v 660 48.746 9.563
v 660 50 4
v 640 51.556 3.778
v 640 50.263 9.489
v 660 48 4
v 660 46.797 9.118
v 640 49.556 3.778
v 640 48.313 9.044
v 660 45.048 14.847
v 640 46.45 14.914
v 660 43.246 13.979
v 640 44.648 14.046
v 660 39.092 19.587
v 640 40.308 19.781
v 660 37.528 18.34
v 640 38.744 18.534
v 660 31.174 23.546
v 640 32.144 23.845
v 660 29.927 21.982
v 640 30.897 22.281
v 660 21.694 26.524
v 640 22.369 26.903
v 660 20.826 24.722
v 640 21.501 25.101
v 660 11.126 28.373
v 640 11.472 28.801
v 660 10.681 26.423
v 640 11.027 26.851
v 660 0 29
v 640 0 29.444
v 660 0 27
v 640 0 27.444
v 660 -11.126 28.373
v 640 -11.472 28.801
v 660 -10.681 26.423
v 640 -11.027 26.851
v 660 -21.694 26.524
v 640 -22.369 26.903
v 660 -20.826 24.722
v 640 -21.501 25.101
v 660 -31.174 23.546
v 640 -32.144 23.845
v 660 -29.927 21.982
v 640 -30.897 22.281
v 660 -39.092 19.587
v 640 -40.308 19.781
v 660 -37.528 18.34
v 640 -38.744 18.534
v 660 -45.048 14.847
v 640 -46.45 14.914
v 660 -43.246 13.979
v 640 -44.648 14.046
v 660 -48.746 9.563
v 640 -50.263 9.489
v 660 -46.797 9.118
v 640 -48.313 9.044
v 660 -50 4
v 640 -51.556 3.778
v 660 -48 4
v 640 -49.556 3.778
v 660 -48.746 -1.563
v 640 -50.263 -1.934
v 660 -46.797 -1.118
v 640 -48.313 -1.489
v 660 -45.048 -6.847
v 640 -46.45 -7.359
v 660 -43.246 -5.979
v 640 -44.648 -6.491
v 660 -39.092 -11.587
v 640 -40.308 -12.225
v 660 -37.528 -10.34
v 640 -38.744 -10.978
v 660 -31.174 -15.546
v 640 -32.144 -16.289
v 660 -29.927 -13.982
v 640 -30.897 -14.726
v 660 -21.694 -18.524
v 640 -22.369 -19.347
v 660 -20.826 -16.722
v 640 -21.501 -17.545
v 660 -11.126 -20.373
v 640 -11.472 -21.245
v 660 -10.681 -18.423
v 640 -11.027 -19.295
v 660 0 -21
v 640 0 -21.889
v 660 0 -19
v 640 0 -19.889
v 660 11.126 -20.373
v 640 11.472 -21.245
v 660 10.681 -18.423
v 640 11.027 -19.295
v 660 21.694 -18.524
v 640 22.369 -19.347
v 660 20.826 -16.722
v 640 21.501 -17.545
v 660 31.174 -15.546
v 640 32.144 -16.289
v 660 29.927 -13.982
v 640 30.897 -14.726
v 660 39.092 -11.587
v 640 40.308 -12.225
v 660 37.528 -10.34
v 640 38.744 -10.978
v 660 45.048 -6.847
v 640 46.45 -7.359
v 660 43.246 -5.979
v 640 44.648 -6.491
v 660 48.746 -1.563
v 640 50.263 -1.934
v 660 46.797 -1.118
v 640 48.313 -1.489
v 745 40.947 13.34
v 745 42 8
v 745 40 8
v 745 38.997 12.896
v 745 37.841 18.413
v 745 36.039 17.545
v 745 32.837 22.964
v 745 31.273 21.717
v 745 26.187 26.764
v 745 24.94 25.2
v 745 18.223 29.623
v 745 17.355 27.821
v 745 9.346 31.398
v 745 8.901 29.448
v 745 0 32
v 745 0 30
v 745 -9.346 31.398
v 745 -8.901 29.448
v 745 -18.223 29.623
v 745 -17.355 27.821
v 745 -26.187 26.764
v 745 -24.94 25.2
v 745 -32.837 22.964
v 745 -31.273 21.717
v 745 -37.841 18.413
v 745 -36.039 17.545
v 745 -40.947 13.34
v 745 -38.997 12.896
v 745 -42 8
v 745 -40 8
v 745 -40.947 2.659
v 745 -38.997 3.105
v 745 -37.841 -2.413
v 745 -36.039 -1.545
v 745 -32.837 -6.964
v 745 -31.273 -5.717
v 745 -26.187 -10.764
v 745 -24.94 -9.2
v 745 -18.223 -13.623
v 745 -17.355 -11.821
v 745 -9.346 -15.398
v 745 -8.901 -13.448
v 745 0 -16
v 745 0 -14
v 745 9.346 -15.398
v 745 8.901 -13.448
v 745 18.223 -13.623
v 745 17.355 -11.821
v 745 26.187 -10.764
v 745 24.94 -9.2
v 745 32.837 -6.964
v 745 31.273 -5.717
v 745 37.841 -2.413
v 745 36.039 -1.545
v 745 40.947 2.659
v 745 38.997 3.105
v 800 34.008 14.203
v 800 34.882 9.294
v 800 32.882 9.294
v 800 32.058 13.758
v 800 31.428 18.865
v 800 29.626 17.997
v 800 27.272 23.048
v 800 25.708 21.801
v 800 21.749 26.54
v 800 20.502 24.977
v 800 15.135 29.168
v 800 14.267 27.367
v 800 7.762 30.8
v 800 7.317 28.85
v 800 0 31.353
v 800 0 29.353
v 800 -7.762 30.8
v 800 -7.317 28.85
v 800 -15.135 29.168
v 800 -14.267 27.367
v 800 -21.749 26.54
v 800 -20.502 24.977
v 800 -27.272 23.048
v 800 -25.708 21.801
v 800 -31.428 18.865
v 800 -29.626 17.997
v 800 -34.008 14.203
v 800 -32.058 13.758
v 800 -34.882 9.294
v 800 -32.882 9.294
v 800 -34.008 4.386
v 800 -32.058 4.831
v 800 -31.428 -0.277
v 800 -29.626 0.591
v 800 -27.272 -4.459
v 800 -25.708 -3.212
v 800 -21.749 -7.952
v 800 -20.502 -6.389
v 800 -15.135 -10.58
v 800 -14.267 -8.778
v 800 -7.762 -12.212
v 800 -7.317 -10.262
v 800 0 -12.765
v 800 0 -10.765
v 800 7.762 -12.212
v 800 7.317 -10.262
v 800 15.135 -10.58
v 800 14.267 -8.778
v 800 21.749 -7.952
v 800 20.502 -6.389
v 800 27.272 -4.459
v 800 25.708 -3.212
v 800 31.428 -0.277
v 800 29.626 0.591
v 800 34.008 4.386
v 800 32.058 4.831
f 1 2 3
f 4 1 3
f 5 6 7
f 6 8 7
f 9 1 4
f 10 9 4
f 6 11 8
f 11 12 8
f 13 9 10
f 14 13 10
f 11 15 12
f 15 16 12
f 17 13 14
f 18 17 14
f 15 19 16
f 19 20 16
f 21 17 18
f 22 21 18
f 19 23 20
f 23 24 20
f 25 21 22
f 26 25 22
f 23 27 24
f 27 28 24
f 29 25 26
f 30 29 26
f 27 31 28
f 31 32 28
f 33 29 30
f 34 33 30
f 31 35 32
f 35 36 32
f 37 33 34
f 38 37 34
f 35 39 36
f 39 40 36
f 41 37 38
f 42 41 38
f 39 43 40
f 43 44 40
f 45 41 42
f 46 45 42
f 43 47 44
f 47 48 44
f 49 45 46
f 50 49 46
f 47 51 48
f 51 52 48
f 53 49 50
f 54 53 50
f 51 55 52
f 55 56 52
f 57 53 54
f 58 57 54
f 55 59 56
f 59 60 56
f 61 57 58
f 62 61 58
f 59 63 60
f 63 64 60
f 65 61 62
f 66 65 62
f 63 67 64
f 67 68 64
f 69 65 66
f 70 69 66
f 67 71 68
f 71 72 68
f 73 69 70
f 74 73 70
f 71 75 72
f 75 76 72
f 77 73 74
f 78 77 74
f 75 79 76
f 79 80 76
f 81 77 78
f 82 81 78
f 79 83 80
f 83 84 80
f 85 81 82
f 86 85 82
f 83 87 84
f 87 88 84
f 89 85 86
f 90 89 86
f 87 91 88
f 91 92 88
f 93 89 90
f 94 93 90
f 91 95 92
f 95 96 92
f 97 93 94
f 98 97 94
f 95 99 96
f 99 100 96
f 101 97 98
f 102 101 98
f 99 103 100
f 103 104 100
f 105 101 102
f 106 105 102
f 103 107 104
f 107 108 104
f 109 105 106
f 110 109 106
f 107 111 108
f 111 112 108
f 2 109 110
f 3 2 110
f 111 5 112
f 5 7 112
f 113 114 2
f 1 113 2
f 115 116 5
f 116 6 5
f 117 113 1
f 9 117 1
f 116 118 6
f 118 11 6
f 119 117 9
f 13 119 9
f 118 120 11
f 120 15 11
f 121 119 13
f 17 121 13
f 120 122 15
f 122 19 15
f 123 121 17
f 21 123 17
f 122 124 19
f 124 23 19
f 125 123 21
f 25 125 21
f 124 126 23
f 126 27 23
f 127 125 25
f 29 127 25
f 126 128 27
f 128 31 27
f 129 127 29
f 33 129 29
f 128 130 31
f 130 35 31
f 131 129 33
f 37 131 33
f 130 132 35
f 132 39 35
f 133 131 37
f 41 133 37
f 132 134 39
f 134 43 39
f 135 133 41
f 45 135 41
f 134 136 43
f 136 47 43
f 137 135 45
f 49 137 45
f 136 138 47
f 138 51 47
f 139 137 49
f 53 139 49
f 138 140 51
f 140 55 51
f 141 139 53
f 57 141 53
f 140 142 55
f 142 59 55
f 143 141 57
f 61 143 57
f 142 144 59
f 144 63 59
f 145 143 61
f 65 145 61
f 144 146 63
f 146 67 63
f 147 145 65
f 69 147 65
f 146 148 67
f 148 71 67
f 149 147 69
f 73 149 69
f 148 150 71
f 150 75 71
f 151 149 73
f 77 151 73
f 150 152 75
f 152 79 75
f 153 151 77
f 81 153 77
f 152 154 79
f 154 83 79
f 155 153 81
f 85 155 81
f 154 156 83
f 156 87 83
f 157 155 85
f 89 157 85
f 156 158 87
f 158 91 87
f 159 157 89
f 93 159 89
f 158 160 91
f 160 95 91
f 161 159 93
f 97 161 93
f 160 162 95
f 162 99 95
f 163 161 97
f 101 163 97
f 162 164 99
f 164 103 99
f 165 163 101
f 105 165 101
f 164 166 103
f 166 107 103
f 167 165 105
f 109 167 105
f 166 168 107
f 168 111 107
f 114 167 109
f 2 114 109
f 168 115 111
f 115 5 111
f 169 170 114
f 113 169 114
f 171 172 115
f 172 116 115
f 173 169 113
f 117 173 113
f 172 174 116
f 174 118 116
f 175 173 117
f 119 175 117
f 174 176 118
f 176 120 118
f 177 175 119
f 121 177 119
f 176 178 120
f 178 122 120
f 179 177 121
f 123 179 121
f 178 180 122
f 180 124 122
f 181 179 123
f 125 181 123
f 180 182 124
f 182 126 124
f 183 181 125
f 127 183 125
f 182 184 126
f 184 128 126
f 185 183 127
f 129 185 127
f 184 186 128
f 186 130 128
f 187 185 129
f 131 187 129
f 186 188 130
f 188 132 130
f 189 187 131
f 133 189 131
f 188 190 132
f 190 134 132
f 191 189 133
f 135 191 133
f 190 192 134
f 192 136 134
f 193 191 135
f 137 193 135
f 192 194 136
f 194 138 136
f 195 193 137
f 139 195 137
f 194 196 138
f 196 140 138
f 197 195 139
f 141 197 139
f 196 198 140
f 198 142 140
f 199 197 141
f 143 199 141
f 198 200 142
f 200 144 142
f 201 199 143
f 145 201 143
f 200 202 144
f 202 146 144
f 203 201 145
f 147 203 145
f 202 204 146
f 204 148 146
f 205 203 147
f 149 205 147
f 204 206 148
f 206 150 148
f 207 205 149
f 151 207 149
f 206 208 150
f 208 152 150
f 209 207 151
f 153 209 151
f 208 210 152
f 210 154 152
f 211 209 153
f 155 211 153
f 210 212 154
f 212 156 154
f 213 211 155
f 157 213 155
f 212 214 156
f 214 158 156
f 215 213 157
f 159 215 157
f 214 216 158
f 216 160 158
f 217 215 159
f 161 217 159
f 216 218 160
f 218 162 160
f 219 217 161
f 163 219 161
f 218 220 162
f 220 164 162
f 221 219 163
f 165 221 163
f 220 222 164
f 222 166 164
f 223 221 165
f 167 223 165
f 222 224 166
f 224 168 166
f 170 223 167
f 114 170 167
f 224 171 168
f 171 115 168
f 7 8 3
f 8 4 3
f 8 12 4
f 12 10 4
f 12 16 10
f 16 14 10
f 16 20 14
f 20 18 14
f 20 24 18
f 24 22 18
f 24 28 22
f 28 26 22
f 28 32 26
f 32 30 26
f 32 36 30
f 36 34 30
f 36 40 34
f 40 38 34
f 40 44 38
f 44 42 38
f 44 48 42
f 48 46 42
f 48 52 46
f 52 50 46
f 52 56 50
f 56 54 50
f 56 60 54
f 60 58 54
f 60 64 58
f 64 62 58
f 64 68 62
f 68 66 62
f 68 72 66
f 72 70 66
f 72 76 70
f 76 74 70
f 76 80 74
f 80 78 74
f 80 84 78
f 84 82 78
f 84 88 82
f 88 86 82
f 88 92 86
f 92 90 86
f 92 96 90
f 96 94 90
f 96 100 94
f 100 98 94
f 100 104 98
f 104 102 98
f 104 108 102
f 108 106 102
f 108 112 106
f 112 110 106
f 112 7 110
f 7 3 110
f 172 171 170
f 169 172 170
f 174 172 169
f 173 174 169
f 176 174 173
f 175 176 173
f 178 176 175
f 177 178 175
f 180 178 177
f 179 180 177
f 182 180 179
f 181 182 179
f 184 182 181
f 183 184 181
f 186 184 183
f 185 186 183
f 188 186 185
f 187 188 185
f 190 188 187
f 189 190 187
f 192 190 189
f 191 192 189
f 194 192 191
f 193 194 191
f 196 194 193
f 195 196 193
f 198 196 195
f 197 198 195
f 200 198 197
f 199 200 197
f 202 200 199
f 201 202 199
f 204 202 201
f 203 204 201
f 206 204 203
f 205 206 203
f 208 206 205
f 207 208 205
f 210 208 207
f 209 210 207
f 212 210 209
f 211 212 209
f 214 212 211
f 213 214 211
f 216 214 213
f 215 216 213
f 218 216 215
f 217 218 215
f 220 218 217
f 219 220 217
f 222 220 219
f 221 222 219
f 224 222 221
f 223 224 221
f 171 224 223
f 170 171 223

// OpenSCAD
polyhedron(points=[[640.0, 51.555556, 3.777778], [640.0, 50.26295, 9.489148], [640.0, 46.449951, 14.914127], [640.0, 40.307756, 19.780683], [640.0, 32.144363, 23.844786], [640.0, 22.369117, 26.902645], [640.0, 11.47219, 28.800928], [640.0, 0.0, 29.444444], [640.0, -11.47219, 28.800928], [640.0, -22.369117, 26.902645], [640.0, -32.144363, 23.844786], [640.0, -40.307756, 19.780683], [640.0, -46.449951, 14.914127], [640.0, -50.26295, 9.489148], [640.0, -51.555556, 3.777778], [640.0, -50.26295, -1.933593], [640.0, -46.449951, -7.358572], [640.0, -40.307756, -12.225127], [640.0, -32.144363, -16.28923], [640.0, -22.369117, -19.34709], [640.0, -11.47219, -21.245372], [640.0, -0.0, -21.888889], [640.0, 11.47219, -21.245372], [640.0, 22.369117, -19.34709], [640.0, 32.144363, -16.28923], [640.0, 40.307756, -12.225127], [640.0, 46.449951, -7.358572], [640.0, 50.26295, -1.933593], [640.0, 49.555556, 3.777778], [640.0, 48.313094, 9.044107], [640.0, 44.648013, 14.04636], [640.0, 38.744093, 18.533703], [640.0, 30.897384, 22.281123], [640.0, 21.50135, 25.100708], [640.0, 11.027149, 26.851072], [640.0, 0.0, 27.444444], [640.0, -11.027149, 26.851072], [640.0, -21.50135, 25.100708], [640.0, -30.897384, 22.281123], [640.0, -38.744093, 18.533703], [640.0, -44.648013, 14.04636], [640.0, -48.313094, 9.044107], [640.0, -49.555556, 3.777778], [640.0, -48.313094, -1.488551], [640.0, -44.648013, -6.490804], [640.0, -38.744093, -10.978148], [640.0, -30.897384, -14.725567], [640.0, -21.50135, -17.545152], [640.0, -11.027149, -19.295516], [640.0, -0.0, -19.888889], [640.0, 11.027149, -19.295516], [640.0, 21.50135, -17.545152], [640.0, 30.897384, -14.725567], [640.0, 38.744093, -10.978148], [640.0, 44.648013, -6.490804], [640.0, 48.313094, -1.488551], [660.0, 50.0, 4.0], [660.0, 48.746396, 9.563023], [660.0, 45.048443, 14.847093], [660.0, 39.091574, 19.587245], [660.0, 31.17449, 23.545787], [660.0, 21.694187, 26.524222], [660.0, 11.126047, 28.373198], [660.0, 0.0, 29.0], [660.0, -11.126047, 28.373198], [660.0, -21.694187, 26.524222], [660.0, -31.17449, 23.545787], [660.0, -39.091574, 19.587245], [660.0, -45.048443, 14.847093], [660.0, -48.746396, 9.563023], [660.0, -50.0, 4.0], [660.0, -48.746396, -1.563023], [660.0, -45.048443, -6.847093], [660.0, -39.091574, -11.587245], [660.0, -31.17449, -15.545787], [660.0, -21.694187, -18.524222], [660.0, -11.126047, -20.373198], [660.0, -0.0, -21.0], [660.0, 11.126047, -20.373198], [660.0, 21.694187, -18.524222], [660.0, 31.17449, -15.545787], [660.0, 39.091574, -11.587245], [660.0, 45.048443, -6.847093], [660.0, 48.746396, -1.563023], [660.0, 48.0, 4.0], [660.0, 46.79654, 9.117981], [660.0, 43.246506, 13.979326], [660.0, 37.527911, 18.340265], [660.0, 29.92751, 21.982124], [660.0, 20.826419, 24.722284], [660.0, 10.681005, 26.423342], [660.0, 0.0, 27.0], [660.0, -10.681005, 26.423342], [660.0, -20.826419, 24.722284], [660.0, -29.92751, 21.982124], [660.0, -37.527911, 18.340265], [660.0, -43.246506, 13.979326], [660.0, -46.79654, 9.117981], [660.0, -48.0, 4.0], [660.0, -46.79654, -1.117981], [660.0, -43.246506, -5.979326], [660.0, -37.527911, -10.340265], [660.0, -29.92751, -13.982124], [660.0, -20.826419, -16.722284], [660.0, -10.681005, -18.423342], [660.0, -0.0, -19.0], [660.0, 10.681005, -18.423342], [660.0, 20.826419, -16.722284], [660.0, 29.92751, -13.982124], [660.0, 37.527911, -10.340265], [660.0, 43.246506, -5.979326], [660.0, 46.79654, -1.117981], [745.0, 42.0, 8.0], [745.0, 40.946972, 13.340502], [745.0, 37.840692, 18.41321], [745.0, 32.836922, 22.963755], [745.0, 26.186572, 26.763956], [745.0, 18.223117, 29.623253], [745.0, 9.345879, 31.39827], [745.0, 0.0, 32.0], [745.0, -9.345879, 31.39827], [745.0, -18.223117, 29.623253], [745.0, -26.186572, 26.763956], [745.0, -32.836922, 22.963755], [745.0, -37.840692, 18.41321], [745.0, -40.946972, 13.340502], [745.0, -42.0, 8.0], [745.0, -40.946972, 2.659498], [745.0, -37.840692, -2.41321], [745.0, -32.836922, -6.963755], [745.0, -26.186572, -10.763956], [745.0, -18.223117, -13.623253], [745.0, -9.345879, -15.39827], [745.0, -0.0, -16.0], [745.0, 9.345879, -15.39827], [745.0, 18.223117, -13.623253], [745.0, 26.186572, -10.763956], [745.0, 32.836922, -6.963755], [745.0, 37.840692, -2.41321], [745.0, 40.946972, 2.659498], [745.0, 40.0, 8.0], [745.0, 38.997116, 12.895461], [745.0, 36.038755, 17.545442], [745.0, 31.273259, 21.716776], [745.0, 24.939592, 25.200293], [745.0, 17.35535, 27.821315], [745.0, 8.900837, 29.448414], [745.0, 0.0, 30.0], [745.0, -8.900837, 29.448414], [745.0, -17.35535, 27.821315], [745.0, -24.939592, 25.200293], [745.0, -31.273259, 21.716776], [745.0, -36.038755, 17.545442], [745.0, -38.997116, 12.895461], [745.0, -40.0, 8.0], [745.0, -38.997116, 3.104539], [745.0, -36.038755, -1.545442], [745.0, -31.273259, -5.716776], [745.0, -24.939592, -9.200293], [745.0, -17.35535, -11.821315], [745.0, -8.900837, -13.448414], [745.0, -0.0, -14.0], [745.0, 8.900837, -13.448414], [745.0, 17.35535, -11.821315], [745.0, 24.939592, -9.200293], [745.0, 31.273259, -5.716776], [745.0, 36.038755, -1.545442], [745.0, 38.997116, 3.104539], [800.0, 34.882353, 9.294118], [800.0, 34.00778, 14.202668], [800.0, 31.427914, 18.865082], [800.0, 27.272122, 23.047569], [800.0, 21.748791, 26.5404], [800.0, 15.134886, 29.168431], [800.0, 7.762054, 30.79988], [800.0, 0.0, 31.352941], [800.0, -7.762054, 30.79988], [800.0, -15.134886, 29.168431], [800.0, -21.748791, 26.5404], [800.0, -27.272122, 23.047569], [800.0, -31.427914, 18.865082], [800.0, -34.00778, 14.202668], [800.0, -34.882353, 9.294118], [800.0, -34.00778, 4.385568], [800.0, -31.427914, -0.276847], [800.0, -27.272122, -4.459334], [800.0, -21.748791, -7.952165], [800.0, -15.134886, -10.580196], [800.0, -7.762054, -12.211645], [800.0, -0.0, -12.764706], [800.0, 7.762054, -12.211645], [800.0, 15.134886, -10.580196], [800.0, 21.748791, -7.952165], [800.0, 27.272122, -4.459334], [800.0, 31.427914, -0.276847], [800.0, 34.00778, 4.385568], [800.0, 32.882353, 9.294118], [800.0, 32.057924, 13.757626], [800.0, 29.625976, 17.997315], [800.0, 25.708459, 21.80059], [800.0, 20.501812, 24.976737], [800.0, 14.267118, 27.366493], [800.0, 7.317012, 28.850025], [800.0, 0.0, 29.352941], [800.0, -7.317012, 28.850025], [800.0, -14.267118, 27.366493], [800.0, -20.501812, 24.976737], [800.0, -25.708459, 21.80059], [800.0, -29.625976, 17.997315], [800.0, -32.057924, 13.757626], [800.0, -32.882353, 9.294118], [800.0, -32.057924, 4.83061], [800.0, -29.625976, 0.59092], [800.0, -25.708459, -3.212354], [800.0, -20.501812, -6.388502], [800.0, -14.267118, -8.778258], [800.0, -7.317012, -10.261789], [800.0, -0.0, -10.764706], [800.0, 7.317012, -10.261789], [800.0, 14.267118, -8.778258], [800.0, 20.501812, -6.388502], [800.0, 25.708459, -3.212354], [800.0, 29.625976, 0.59092], [800.0, 32.057924, 4.83061]], faces=[[0, 56, 57], [0, 57, 1], [28, 85, 84], [28, 29, 85], [1, 57, 58], [1, 58, 2], [29, 86, 85], [29, 30, 86], [2, 58, 59], [2, 59, 3], [30, 87, 86], [30, 31, 87], [3, 59, 60], [3, 60, 4], [31, 88, 87], [31, 32, 88], [4, 60, 61], [4, 61, 5], [32, 89, 88], [32, 33, 89], [5, 61, 62], [5, 62, 6], [33, 90, 89], [33, 34, 90], [6, 62, 63], [6, 63, 7], [34, 91, 90], [34, 35, 91], [7, 63, 64], [7, 64, 8], [35, 92, 91], [35, 36, 92], [8, 64, 65], [8, 65, 9], [36, 93, 92], [36, 37, 93], [9, 65, 66], [9, 66, 10], [37, 94, 93], [37, 38, 94], [10, 66, 67], [10, 67, 11], [38, 95, 94], [38, 39, 95], [11, 67, 68], [11, 68, 12], [39, 96, 95], [39, 40, 96], [12, 68, 69], [12, 69, 13], [40, 97, 96], [40, 41, 97], [13, 69, 70], [13, 70, 14], [41, 98, 97], [41, 42, 98], [14, 70, 71], [14, 71, 15], [42, 99, 98], [42, 43, 99], [15, 71, 72], [15, 72, 16], [43, 100, 99], [43, 44, 100], [16, 72, 73], [16, 73, 17], [44, 101, 100], [44, 45, 101], [17, 73, 74], [17, 74, 18], [45, 102, 101], [45, 46, 102], [18, 74, 75], [18, 75, 19], [46, 103, 102], [46, 47, 103], [19, 75, 76], [19, 76, 20], [47, 104, 103], [47, 48, 104], [20, 76, 77], [20, 77, 21], [48, 105, 104], [48, 49, 105], [21, 77, 78], [21, 78, 22], [49, 106, 105], [49, 50, 106], [22, 78, 79], [22, 79, 23], [50, 107, 106], [50, 51, 107], [23, 79, 80], [23, 80, 24], [51, 108, 107], [51, 52, 108], [24, 80, 81], [24, 81, 25], [52, 109, 108], [52, 53, 109], [25, 81, 82], [25, 82, 26], [53, 110, 109], [53, 54, 110], [26, 82, 83], [26, 83, 27], [54, 111, 110], [54, 55, 111], [27, 83, 56], [27, 56, 0], [55, 84, 111], [55, 28, 84], [56, 112, 113], [56, 113, 57], [84, 141, 140], [84, 85, 141], [57, 113, 114], [57, 114, 58], [85, 142, 141], [85, 86, 142], [58, 114, 115], [58, 115, 59], [86, 143, 142], [86, 87, 143], [59, 115, 116], [59, 116, 60], [87, 144, 143], [87, 88, 144], [60, 116, 117], [60, 117, 61], [88, 145, 144], [88, 89, 145], [61, 117, 118], [61, 118, 62], [89, 146, 145], [89, 90, 146], [62, 118, 119], [62, 119, 63], [90, 147, 146], [90, 91, 147], [63, 119, 120], [63, 120, 64], [91, 148, 147], [91, 92, 148], [64, 120, 121], [64, 121, 65], [92, 149, 148], [92, 93, 149], [65, 121, 122], [65, 122, 66], [93, 150, 149], [93, 94, 150], [66, 122, 123], [66, 123, 67], [94, 151, 150], [94, 95, 151], [67, 123, 124], [67, 124, 68], [95, 152, 151], [95, 96, 152], [68, 124, 125], [68, 125, 69], [96, 153, 152], [96, 97, 153], [69, 125, 126], [69, 126, 70], [97, 154, 153], [97, 98, 154], [70, 126, 127], [70, 127, 71], [98, 155, 154], [98, 99, 155], [71, 127, 128], [71, 128, 72], [99, 156, 155], [99, 100, 156], [72, 128, 129], [72, 129, 73], [100, 157, 156], [100, 101, 157], [73, 129, 130], [73, 130, 74], [101, 158, 157], [101, 102, 158], [74, 130, 131], [74, 131, 75], [102, 159, 158], [102, 103, 159], [75, 131, 132], [75, 132, 76], [103, 160, 159], [103, 104, 160], [76, 132, 133], [76, 133, 77], [104, 161, 160], [104, 105, 161], [77, 133, 134], [77, 134, 78], [105, 162, 161], [105, 106, 162], [78, 134, 135], [78, 135, 79], [106, 163, 162], [106, 107, 163], [79, 135, 136], [79, 136, 80], [107, 164, 163], [107, 108, 164], [80, 136, 137], [80, 137, 81], [108, 165, 164], [108, 109, 165], [81, 137, 138], [81, 138, 82], [109, 166, 165], [109, 110, 166], [82, 138, 139], [82, 139, 83], [110, 167, 166], [110, 111, 167], [83, 139, 112], [83, 112, 56], [111, 140, 167], [111, 84, 140], [112, 168, 169], [112, 169, 113], [140, 197, 196], [140, 141, 197], [113, 169, 170], [113, 170, 114], [141, 198, 197], [141, 142, 198], [114, 170, 171], [114, 171, 115], [142, 199, 198], [142, 143, 199], [115, 171, 172], [115, 172, 116], [143, 200, 199], [143, 144, 200], [116, 172, 173], [116, 173, 117], [144, 201, 200], [144, 145, 201], [117, 173, 174], [117, 174, 118], [145, 202, 201], [145, 146, 202], [118, 174, 175], [118, 175, 119], [146, 203, 202], [146, 147, 203], [119, 175, 176], [119, 176, 120], [147, 204, 203], [147, 148, 204], [120, 176, 177], [120, 177, 121], [148, 205, 204], [148, 149, 205], [121, 177, 178], [121, 178, 122], [149, 206, 205], [149, 150, 206], [122, 178, 179], [122, 179, 123], [150, 207, 206], [150, 151, 207], [123, 179, 180], [123, 180, 124], [151, 208, 207], [151, 152, 208], [124, 180, 181], [124, 181, 125], [152, 209, 208], [152, 153, 209], [125, 181, 182], [125, 182, 126], [153, 210, 209], [153, 154, 210], [126, 182, 183], [126, 183, 127], [154, 211, 210], [154, 155, 211], [127, 183, 184], [127, 184, 128], [155, 212, 211], [155, 156, 212], [128, 184, 185], [128, 185, 129], [156, 213, 212], [156, 157, 213], [129, 185, 186], [129, 186, 130], [157, 214, 213], [157, 158, 214], [130, 186, 187], [130, 187, 131], [158, 215, 214], [158, 159, 215], [131, 187, 188], [131, 188, 132], [159, 216, 215], [159, 160, 216], [132, 188, 189], [132, 189, 133], [160, 217, 216], [160, 161, 217], [133, 189, 190], [133, 190, 134], [161, 218, 217], [161, 162, 218], [134, 190, 191], [134, 191, 135], [162, 219, 218], [162, 163, 219], [135, 191, 192], [135, 192, 136], [163, 220, 219], [163, 164, 220], [136, 192, 193], [136, 193, 137], [164, 221, 220], [164, 165, 221], [137, 193, 194], [137, 194, 138], [165, 222, 221], [165, 166, 222], [138, 194, 195], [138, 195, 139], [166, 223, 222], [166, 167, 223], [139, 195, 168], [139, 168, 112], [167, 196, 223], [167, 140, 196], [0, 29, 28], [0, 1, 29], [1, 30, 29], [1, 2, 30], [2, 31, 30], [2, 3, 31], [3, 32, 31], [3, 4, 32], [4, 33, 32], [4, 5, 33], [5, 34, 33], [5, 6, 34], [6, 35, 34], [6, 7, 35], [7, 36, 35], [7, 8, 36], [8, 37, 36], [8, 9, 37], [9, 38, 37], [9, 10, 38], [10, 39, 38], [10, 11, 39], [11, 40, 39], [11, 12, 40], [12, 41, 40], [12, 13, 41], [13, 42, 41], [13, 14, 42], [14, 43, 42], [14, 15, 43], [15, 44, 43], [15, 16, 44], [16, 45, 44], [16, 17, 45], [17, 46, 45], [17, 18, 46], [18, 47, 46], [18, 19, 47], [19, 48, 47], [19, 20, 48], [20, 49, 48], [20, 21, 49], [21, 50, 49], [21, 22, 50], [22, 51, 50], [22, 23, 51], [23, 52, 51], [23, 24, 52], [24, 53, 52], [24, 25, 53], [25, 54, 53], [25, 26, 54], [26, 55, 54], [26, 27, 55], [27, 28, 55], [27, 0, 28], [168, 196, 197], [168, 197, 169], [169, 197, 198], [169, 198, 170], [170, 198, 199], [170, 199, 171], [171, 199, 200], [171, 200, 172], [172, 200, 201], [172, 201, 173], [173, 201, 202], [173, 202, 174], [174, 202, 203], [174, 203, 175], [175, 203, 204], [175, 204, 176], [176, 204, 205], [176, 205, 177], [177, 205, 206], [177, 206, 178], [178, 206, 207], [178, 207, 179], [179, 207, 208], [179, 208, 180], [180, 208, 209], [180, 209, 181], [181, 209, 210], [181, 210, 182], [182, 210, 211], [182, 211, 183], [183, 211, 212], [183, 212, 184], [184, 212, 213], [184, 213, 185], [185, 213, 214], [185, 214, 186], [186, 214, 215], [186, 215, 187], [187, 215, 216], [187, 216, 188], [188, 216, 217], [188, 217, 189], [189, 217, 218], [189, 218, 190], [190, 218, 219], [190, 219, 191], [191, 219, 220], [191, 220, 192], [192, 220, 221], [192, 221, 193], [193, 221, 222], [193, 222, 194], [194, 222, 223], [194, 223, 195], [195, 223, 196], [195, 196, 168]], convexity=20);
